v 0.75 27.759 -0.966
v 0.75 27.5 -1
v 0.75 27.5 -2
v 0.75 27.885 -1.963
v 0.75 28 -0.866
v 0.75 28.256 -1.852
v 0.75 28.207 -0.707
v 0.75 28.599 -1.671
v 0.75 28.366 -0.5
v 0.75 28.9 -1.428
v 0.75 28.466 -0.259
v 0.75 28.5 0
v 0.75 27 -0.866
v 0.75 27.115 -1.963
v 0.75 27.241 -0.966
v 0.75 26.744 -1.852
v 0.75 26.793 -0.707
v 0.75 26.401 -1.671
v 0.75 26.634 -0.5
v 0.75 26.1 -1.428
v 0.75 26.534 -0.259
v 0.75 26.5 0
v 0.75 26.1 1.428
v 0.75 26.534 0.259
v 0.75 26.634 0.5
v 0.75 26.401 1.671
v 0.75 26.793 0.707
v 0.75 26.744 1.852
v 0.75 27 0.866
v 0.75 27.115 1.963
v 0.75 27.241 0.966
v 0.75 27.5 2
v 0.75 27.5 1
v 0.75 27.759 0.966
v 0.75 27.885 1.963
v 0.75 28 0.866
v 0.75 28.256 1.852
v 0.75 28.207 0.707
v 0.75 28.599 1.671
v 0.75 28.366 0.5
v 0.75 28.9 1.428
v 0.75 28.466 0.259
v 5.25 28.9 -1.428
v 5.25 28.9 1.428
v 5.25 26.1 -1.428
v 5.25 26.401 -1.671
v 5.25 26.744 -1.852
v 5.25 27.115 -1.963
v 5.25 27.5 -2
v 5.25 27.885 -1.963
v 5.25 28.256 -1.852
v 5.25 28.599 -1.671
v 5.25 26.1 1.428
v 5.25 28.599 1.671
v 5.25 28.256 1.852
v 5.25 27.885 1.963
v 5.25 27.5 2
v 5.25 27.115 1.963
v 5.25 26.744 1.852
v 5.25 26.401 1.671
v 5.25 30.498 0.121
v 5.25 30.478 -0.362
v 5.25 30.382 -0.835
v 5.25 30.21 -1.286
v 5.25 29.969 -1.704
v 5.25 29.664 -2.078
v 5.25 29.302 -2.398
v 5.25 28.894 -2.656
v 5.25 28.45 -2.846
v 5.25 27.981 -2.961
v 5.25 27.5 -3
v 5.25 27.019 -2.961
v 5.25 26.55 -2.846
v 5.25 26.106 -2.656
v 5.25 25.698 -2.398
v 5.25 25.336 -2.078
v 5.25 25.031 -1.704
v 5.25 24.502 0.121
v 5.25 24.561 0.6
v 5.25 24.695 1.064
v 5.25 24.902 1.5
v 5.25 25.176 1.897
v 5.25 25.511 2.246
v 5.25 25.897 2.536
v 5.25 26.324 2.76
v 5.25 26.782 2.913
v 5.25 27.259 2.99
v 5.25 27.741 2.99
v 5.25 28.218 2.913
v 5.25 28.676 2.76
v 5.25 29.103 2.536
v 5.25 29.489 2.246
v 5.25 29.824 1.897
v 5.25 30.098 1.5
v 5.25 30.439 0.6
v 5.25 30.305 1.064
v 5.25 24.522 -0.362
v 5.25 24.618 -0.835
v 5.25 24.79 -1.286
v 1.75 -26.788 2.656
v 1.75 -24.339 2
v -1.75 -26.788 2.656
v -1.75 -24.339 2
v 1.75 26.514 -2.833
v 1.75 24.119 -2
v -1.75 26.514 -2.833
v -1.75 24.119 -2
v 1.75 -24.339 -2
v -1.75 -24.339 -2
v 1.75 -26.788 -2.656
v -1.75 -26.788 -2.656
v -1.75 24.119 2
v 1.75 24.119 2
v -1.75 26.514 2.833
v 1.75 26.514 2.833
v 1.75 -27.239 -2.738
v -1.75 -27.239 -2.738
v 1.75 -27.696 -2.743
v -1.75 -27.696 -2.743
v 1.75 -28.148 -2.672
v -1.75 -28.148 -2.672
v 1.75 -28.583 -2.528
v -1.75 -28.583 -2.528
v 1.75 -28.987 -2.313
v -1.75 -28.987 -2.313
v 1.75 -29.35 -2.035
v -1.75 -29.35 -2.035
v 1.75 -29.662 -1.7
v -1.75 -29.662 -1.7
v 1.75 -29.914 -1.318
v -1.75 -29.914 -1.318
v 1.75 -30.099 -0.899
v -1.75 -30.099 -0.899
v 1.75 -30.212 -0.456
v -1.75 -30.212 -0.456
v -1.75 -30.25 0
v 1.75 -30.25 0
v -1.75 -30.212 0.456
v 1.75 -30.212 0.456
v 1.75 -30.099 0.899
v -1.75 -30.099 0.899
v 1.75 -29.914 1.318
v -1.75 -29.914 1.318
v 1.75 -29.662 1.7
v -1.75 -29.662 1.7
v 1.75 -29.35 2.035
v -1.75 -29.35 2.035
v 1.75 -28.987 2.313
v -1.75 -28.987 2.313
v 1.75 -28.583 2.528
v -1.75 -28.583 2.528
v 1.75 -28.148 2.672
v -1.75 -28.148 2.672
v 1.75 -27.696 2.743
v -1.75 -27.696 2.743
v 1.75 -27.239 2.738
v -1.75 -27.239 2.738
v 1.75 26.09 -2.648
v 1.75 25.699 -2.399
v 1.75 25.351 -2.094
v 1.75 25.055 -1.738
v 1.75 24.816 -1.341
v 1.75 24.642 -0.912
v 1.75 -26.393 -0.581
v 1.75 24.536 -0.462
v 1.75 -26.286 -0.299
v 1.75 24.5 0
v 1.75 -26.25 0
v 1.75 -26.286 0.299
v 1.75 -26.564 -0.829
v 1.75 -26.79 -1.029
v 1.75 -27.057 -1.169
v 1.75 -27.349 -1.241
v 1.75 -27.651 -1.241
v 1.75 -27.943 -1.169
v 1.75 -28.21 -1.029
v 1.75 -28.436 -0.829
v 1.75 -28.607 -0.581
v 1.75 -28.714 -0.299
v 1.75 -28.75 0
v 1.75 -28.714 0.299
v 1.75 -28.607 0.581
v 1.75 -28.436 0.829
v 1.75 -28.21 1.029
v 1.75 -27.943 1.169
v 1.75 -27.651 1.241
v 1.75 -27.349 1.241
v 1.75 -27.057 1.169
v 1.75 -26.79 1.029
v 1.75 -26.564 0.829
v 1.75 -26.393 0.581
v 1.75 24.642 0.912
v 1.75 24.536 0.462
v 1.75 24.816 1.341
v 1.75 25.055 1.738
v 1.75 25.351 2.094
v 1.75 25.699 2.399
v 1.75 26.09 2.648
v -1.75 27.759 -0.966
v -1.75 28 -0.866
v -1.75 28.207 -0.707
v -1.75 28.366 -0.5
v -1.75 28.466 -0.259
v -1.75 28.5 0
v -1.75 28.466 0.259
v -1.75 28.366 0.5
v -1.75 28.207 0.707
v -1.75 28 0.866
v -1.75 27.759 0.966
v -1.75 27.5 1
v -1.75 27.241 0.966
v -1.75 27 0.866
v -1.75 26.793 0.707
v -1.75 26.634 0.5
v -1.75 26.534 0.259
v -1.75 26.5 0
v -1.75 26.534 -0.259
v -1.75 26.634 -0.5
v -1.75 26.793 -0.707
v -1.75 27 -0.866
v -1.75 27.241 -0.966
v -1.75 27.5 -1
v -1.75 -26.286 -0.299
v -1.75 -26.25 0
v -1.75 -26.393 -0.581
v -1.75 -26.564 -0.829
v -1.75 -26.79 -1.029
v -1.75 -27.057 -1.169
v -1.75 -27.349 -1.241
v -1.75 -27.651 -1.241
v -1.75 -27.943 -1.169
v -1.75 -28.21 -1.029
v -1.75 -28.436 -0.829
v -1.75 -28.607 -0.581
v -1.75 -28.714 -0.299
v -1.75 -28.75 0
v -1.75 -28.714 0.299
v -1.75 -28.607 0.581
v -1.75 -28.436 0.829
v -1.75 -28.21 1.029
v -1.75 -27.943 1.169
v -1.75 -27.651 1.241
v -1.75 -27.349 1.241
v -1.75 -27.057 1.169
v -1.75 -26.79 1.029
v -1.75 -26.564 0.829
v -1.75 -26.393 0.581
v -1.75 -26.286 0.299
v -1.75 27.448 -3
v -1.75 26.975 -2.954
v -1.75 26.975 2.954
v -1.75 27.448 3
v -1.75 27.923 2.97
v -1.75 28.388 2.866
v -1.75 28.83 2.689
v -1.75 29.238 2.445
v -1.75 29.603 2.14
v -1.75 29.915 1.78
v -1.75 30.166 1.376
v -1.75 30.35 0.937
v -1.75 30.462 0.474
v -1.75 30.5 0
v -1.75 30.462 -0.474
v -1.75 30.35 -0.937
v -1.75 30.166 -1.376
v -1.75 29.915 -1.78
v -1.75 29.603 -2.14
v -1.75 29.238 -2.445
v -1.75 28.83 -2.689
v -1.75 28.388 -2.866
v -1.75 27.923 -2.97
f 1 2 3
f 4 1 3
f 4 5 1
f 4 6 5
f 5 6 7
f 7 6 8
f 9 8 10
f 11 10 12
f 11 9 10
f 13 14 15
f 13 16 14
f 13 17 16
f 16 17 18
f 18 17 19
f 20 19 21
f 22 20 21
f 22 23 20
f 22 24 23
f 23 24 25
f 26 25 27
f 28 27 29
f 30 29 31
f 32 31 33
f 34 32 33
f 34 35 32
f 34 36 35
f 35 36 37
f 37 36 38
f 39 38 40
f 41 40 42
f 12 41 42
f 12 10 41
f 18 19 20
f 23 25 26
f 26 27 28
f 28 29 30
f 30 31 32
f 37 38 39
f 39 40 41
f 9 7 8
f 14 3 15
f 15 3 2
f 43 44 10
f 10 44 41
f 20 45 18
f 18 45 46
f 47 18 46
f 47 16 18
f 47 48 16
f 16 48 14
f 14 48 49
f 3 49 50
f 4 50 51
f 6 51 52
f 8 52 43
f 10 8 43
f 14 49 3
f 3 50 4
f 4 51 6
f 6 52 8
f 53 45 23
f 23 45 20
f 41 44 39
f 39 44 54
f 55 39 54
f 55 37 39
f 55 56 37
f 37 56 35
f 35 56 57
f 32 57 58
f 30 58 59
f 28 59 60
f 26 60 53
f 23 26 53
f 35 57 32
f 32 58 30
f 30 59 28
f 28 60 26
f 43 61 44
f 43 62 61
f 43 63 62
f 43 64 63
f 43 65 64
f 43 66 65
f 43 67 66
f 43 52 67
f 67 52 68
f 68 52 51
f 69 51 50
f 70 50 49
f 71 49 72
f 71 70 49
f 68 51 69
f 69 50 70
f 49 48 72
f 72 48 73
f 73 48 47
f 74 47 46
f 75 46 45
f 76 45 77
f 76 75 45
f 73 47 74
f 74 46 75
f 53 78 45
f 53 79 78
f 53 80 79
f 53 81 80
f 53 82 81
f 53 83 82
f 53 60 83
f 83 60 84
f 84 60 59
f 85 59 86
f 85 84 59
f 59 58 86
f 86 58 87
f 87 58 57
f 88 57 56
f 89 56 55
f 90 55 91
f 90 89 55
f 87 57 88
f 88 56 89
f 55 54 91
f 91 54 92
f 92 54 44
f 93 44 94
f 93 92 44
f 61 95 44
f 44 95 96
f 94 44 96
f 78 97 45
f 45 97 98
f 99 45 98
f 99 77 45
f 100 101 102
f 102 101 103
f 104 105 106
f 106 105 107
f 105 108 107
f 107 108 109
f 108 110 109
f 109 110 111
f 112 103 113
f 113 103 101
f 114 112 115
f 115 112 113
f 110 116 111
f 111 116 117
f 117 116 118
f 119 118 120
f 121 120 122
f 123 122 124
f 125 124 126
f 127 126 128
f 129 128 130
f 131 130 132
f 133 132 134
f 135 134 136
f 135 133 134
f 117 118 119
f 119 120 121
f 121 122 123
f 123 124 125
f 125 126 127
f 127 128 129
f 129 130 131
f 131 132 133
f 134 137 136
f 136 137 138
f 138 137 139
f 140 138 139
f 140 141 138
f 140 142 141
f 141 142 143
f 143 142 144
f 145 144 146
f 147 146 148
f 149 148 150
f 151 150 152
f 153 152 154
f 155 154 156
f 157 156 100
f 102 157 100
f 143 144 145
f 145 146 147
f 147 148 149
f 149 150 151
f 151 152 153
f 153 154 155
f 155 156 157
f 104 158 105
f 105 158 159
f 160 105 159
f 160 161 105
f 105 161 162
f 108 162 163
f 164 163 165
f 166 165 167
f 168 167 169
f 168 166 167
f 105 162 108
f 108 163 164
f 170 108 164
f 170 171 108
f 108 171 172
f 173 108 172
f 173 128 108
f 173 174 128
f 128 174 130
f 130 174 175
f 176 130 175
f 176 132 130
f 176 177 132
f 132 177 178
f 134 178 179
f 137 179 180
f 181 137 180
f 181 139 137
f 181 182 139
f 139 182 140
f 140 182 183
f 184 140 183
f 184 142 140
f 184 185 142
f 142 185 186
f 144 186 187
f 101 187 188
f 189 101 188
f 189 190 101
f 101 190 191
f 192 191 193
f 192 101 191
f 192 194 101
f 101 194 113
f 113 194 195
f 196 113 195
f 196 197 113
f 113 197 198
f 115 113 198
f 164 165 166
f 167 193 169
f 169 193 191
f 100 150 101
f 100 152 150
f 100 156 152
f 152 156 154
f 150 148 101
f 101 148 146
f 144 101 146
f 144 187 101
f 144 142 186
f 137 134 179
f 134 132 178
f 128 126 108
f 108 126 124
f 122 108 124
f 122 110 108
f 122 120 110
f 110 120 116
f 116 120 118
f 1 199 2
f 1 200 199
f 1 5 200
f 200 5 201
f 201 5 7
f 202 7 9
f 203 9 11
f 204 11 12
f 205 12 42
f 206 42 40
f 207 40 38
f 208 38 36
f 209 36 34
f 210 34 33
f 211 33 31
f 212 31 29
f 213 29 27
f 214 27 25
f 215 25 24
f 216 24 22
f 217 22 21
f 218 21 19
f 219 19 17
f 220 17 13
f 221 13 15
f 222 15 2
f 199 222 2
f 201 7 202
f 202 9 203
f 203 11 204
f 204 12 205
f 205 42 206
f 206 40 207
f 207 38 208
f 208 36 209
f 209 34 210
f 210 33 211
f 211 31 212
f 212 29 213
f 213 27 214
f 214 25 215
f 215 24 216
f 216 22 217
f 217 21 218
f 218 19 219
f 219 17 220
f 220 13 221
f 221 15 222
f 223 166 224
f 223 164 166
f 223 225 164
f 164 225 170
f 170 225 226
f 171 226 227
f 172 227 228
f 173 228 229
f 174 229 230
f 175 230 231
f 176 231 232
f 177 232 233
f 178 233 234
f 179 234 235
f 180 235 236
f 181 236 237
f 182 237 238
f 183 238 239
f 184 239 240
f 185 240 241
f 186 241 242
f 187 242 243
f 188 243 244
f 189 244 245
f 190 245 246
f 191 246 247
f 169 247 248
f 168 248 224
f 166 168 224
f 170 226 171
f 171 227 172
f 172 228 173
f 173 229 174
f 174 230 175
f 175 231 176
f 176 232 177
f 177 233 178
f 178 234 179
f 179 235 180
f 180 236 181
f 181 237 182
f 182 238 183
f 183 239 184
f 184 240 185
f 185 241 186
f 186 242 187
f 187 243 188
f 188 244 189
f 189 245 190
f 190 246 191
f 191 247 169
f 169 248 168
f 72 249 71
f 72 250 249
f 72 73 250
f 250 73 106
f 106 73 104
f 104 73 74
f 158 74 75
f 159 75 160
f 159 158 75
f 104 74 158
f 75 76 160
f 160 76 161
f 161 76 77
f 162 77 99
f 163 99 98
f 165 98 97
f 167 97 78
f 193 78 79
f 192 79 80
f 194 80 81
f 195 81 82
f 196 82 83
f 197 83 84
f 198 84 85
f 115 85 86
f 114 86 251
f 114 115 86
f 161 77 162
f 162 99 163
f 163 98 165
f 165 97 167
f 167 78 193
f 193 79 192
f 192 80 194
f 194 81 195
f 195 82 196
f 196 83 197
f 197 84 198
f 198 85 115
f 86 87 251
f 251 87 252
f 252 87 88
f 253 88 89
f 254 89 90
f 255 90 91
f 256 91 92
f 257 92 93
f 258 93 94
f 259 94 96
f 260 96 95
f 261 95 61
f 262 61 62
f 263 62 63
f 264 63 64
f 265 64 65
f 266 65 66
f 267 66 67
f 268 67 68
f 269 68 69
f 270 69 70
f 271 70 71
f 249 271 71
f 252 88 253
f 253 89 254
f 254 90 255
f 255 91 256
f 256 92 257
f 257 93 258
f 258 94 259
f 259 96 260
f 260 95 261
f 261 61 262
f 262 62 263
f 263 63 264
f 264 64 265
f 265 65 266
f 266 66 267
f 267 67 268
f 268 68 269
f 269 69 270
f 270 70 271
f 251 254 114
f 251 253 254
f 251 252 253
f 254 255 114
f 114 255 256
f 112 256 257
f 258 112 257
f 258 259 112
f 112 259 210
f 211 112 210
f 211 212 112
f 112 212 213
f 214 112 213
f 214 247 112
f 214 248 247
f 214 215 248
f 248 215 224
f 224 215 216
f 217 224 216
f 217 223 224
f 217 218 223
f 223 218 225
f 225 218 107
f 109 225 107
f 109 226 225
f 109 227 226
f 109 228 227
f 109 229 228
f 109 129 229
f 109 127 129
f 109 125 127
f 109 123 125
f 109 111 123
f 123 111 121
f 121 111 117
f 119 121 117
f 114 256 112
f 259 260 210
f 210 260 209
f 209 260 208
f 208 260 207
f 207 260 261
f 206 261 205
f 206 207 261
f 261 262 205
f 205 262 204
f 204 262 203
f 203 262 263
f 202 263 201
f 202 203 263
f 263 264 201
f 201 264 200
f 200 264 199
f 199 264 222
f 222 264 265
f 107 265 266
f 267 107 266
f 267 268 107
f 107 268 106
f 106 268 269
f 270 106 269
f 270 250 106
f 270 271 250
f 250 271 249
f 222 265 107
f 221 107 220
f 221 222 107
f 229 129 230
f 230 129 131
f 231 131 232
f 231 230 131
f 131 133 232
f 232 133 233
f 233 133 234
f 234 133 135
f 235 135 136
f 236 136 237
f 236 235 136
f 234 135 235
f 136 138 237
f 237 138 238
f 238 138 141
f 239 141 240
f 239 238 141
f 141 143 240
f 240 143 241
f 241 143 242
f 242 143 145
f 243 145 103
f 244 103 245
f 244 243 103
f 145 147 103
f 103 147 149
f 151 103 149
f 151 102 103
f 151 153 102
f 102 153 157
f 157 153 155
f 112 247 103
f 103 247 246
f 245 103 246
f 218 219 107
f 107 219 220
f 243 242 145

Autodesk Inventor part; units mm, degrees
ref_plane "YZ Plane" through (0, 0, 0) normal (1, 0, 0) x (0, 1, 0)
ref_plane "XZ Plane" through (0, 0, 0) normal (0, 1, 0) x (-1, 0, 0)
ref_plane "XY Plane" through (0, 0, 0) normal (0, 0, 1) x (1, 0, 0)
sketch "Sketch1" plane through (0, 0, 0) normal (1, 0, 0) x (0, 1, 0)
  line L0 (-42.7, 0) -> (42.7, 0) projected
  line L1 (0, -4.2) -> (0, 4.2) projected
  circle A0 centre (-27.5, 0) radius 1.25
  circle A1 centre (-27.5, 0) radius 3
  circle A2 centre (27.5, 0) radius 3 construction
  line L2 (-27.5, 3) -> (27.5, 3)
  line L3 (-27.5, -3) -> (27.5, -3)
  line L4 (27.5, 3) -> (27.5, -3) construction
  line L5 (27.5, 2) -> (27.5, -2) construction
  arc A3 (27.5, -3) -> (27.5, 3) centre (27.5, 0) ccw
  circle A4 centre (-27.5, 0) radius 2.2678 construction
  circle A5 centre (27.5, 0) radius 1
  point P0 (0, 0)
  dimension "d4" = 6
  dimension "d7" = 55
  dimension "d8" = 2.5
  dimension "d10" = 0
  dimension "d30" = 2
extrude "ext_main" add sketch "Sketch1" along normal mid plane 3.5 contours A0 L0 A1 | L0 A1 A0 | A1 L2 L1 L0 | L0 L1 L3 A1 | L1 L2 A3 L0 A5 | L0 A5 A3 L3 L1
sketch "Sketch3" plane through (0, 0, 0) normal (1, 0, 0) x (0, 1, 0)
  arc A0 (-27.5, 3) -> (-27.5, -3) centre (-27.5, 0) ccw projected
  circle A1 centre (-27.5, 0) radius 1.25 projected
  arc A2 (27.5, -3) -> (27.5, 3) centre (27.5, 0) ccw projected
  circle A3 centre (-27.5, 0) radius 3 construction
  circle A4 centre (27.5, 0) radius 3 construction
  line L0 (-25.2639, 2) -> (25.2639, 2) construction
  line L1 (-42.7, 0) -> (42.7, 0) projected
  line L2 (0, -4.2579) -> (0, 4.2579) projected
  line L3 (27.5, 3) -> (-27.5, 3) projected
  line L4 (24.1192, 2) -> (26.5141, 2.8334)
  arc A5 (27.5, 3) -> (26.5141, 2.8334) centre (27.5, 0) ccw
  line L5 (-24.3389, 2) -> (24.1192, 2)
  circle A6 centre (-27.5, 0) radius 2.75
  line L6 (-24.3389, 2) -> (-26.7882, 2.6563)
  arc A7 (26.5141, -2.8334) -> (27.5, -3) centre (27.5, 0) ccw
  line L7 (24.1192, -2) -> (-25.2639, -2) construction
  line L8 (-24.3389, -2) -> (-26.7882, -2.6563)
  line L9 (24.1192, -2) -> (-24.3389, -2)
  line L10 (24.1192, -2) -> (26.5141, -2.8334)
  point P0 (0, 0)
  dimension "d16" = 1
  dimension "d21" = 5.5
  dimension "d22" = 15
extrude "ext_cutaway" cut sketch "Sketch3" along normal through all both and the other way through all contours A6 L1 A1 | L1 A1 A6 | L5 L4 A5 A2 L1 L2 | L2 L1 A6 L6 L5 | A6 L1 L2 L9 L8 | L1 A2 A7 L10 L9 L2 keep common part
sketch "Sketch4" plane through (1.75, 0, 0) normal (1, 0, 0) x (0, 0, -1)
  arc A0 (2.8334, 26.5141) -> (-2.8334, 26.5141) centre (0, 27.5) ccw projected
  circle A1 centre (0, 27.5) radius 1 projected
  circle A2 centre (0, 27.5) radius 3
  line L0 (-4.2, 0) -> (4.2, 0) projected
  line L1 (-3, 27.5) -> (3, 27.5) construction
  circle A3 centre (0, 27.5) radius 2 construction
  arc A4 (-1.4283, 28.9) -> (-1.4283, 26.1) centre (0, 27.5) ccw
  arc A5 (1.4283, 26.1) -> (1.4283, 28.9) centre (0, 27.5) ccw
  line L2 (-1.4283, 28.9) -> (1.4283, 28.9)
  line L3 (-1.4283, 26.1) -> (1.4283, 26.1)
  point P0 (0, 0)
  dimension "d23" = 4
  dimension "d25" = 2.8
extrude "ext_potshaft" add sketch "Sketch4" along normal blind 3.5 contours A2 A0
extrude "ext_cut_potshaft" cut sketch "Sketch4" against normal blind 1 contours L2 A5 L3 A4
equation "\"d8\" = screw_m2_bore_loose"
equation "\"d30\" = screw_m2_bore_selfthreading"
equation "\"d21\" = general_bore_smallersupport_diameter"
equation "\"screw_m2_bore_loose\" = 2.5"
equation "\"screw_m2_bore_selfthreading\" = 2"
equation "\"general_bore_smallersupport_diameter\" = 5.5"
properties part number "empty"
